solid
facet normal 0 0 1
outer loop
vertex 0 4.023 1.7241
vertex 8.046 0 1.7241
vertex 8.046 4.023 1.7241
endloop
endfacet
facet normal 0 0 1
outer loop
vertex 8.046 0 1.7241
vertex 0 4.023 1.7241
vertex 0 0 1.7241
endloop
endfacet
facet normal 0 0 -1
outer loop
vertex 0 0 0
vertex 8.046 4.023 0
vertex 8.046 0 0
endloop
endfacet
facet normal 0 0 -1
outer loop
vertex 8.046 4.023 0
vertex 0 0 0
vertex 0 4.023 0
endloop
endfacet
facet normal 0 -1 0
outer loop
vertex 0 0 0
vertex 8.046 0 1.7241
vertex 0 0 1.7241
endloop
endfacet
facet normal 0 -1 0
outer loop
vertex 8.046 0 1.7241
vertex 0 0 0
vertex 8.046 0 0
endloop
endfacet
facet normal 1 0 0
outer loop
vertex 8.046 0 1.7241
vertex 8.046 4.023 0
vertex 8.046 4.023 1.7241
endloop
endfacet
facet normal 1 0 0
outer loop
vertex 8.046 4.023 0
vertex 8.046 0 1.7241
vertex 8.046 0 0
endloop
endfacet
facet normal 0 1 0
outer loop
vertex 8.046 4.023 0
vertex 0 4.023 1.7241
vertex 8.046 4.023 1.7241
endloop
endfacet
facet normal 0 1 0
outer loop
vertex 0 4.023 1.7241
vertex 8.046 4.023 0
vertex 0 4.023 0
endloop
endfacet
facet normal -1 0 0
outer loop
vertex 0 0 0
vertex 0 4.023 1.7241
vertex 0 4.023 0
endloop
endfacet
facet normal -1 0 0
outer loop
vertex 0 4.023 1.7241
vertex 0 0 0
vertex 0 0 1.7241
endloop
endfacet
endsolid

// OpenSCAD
/*
 * PROMPT: Entrance step of the Polish outdoor toilet (sławojka) in H0 scale (1:87).
 * Small flat concrete slab placed in front of the door. Printed flat.
 */

$fn = 32;
S = 1/87;

step_w_real = 700;
step_d_real = 350;
step_h_real = 150;

step_w = step_w_real * S;
step_d = step_d_real * S;
step_h = step_h_real * S;

module step() {
    cube([step_w, step_d, step_h]);
}

step();
